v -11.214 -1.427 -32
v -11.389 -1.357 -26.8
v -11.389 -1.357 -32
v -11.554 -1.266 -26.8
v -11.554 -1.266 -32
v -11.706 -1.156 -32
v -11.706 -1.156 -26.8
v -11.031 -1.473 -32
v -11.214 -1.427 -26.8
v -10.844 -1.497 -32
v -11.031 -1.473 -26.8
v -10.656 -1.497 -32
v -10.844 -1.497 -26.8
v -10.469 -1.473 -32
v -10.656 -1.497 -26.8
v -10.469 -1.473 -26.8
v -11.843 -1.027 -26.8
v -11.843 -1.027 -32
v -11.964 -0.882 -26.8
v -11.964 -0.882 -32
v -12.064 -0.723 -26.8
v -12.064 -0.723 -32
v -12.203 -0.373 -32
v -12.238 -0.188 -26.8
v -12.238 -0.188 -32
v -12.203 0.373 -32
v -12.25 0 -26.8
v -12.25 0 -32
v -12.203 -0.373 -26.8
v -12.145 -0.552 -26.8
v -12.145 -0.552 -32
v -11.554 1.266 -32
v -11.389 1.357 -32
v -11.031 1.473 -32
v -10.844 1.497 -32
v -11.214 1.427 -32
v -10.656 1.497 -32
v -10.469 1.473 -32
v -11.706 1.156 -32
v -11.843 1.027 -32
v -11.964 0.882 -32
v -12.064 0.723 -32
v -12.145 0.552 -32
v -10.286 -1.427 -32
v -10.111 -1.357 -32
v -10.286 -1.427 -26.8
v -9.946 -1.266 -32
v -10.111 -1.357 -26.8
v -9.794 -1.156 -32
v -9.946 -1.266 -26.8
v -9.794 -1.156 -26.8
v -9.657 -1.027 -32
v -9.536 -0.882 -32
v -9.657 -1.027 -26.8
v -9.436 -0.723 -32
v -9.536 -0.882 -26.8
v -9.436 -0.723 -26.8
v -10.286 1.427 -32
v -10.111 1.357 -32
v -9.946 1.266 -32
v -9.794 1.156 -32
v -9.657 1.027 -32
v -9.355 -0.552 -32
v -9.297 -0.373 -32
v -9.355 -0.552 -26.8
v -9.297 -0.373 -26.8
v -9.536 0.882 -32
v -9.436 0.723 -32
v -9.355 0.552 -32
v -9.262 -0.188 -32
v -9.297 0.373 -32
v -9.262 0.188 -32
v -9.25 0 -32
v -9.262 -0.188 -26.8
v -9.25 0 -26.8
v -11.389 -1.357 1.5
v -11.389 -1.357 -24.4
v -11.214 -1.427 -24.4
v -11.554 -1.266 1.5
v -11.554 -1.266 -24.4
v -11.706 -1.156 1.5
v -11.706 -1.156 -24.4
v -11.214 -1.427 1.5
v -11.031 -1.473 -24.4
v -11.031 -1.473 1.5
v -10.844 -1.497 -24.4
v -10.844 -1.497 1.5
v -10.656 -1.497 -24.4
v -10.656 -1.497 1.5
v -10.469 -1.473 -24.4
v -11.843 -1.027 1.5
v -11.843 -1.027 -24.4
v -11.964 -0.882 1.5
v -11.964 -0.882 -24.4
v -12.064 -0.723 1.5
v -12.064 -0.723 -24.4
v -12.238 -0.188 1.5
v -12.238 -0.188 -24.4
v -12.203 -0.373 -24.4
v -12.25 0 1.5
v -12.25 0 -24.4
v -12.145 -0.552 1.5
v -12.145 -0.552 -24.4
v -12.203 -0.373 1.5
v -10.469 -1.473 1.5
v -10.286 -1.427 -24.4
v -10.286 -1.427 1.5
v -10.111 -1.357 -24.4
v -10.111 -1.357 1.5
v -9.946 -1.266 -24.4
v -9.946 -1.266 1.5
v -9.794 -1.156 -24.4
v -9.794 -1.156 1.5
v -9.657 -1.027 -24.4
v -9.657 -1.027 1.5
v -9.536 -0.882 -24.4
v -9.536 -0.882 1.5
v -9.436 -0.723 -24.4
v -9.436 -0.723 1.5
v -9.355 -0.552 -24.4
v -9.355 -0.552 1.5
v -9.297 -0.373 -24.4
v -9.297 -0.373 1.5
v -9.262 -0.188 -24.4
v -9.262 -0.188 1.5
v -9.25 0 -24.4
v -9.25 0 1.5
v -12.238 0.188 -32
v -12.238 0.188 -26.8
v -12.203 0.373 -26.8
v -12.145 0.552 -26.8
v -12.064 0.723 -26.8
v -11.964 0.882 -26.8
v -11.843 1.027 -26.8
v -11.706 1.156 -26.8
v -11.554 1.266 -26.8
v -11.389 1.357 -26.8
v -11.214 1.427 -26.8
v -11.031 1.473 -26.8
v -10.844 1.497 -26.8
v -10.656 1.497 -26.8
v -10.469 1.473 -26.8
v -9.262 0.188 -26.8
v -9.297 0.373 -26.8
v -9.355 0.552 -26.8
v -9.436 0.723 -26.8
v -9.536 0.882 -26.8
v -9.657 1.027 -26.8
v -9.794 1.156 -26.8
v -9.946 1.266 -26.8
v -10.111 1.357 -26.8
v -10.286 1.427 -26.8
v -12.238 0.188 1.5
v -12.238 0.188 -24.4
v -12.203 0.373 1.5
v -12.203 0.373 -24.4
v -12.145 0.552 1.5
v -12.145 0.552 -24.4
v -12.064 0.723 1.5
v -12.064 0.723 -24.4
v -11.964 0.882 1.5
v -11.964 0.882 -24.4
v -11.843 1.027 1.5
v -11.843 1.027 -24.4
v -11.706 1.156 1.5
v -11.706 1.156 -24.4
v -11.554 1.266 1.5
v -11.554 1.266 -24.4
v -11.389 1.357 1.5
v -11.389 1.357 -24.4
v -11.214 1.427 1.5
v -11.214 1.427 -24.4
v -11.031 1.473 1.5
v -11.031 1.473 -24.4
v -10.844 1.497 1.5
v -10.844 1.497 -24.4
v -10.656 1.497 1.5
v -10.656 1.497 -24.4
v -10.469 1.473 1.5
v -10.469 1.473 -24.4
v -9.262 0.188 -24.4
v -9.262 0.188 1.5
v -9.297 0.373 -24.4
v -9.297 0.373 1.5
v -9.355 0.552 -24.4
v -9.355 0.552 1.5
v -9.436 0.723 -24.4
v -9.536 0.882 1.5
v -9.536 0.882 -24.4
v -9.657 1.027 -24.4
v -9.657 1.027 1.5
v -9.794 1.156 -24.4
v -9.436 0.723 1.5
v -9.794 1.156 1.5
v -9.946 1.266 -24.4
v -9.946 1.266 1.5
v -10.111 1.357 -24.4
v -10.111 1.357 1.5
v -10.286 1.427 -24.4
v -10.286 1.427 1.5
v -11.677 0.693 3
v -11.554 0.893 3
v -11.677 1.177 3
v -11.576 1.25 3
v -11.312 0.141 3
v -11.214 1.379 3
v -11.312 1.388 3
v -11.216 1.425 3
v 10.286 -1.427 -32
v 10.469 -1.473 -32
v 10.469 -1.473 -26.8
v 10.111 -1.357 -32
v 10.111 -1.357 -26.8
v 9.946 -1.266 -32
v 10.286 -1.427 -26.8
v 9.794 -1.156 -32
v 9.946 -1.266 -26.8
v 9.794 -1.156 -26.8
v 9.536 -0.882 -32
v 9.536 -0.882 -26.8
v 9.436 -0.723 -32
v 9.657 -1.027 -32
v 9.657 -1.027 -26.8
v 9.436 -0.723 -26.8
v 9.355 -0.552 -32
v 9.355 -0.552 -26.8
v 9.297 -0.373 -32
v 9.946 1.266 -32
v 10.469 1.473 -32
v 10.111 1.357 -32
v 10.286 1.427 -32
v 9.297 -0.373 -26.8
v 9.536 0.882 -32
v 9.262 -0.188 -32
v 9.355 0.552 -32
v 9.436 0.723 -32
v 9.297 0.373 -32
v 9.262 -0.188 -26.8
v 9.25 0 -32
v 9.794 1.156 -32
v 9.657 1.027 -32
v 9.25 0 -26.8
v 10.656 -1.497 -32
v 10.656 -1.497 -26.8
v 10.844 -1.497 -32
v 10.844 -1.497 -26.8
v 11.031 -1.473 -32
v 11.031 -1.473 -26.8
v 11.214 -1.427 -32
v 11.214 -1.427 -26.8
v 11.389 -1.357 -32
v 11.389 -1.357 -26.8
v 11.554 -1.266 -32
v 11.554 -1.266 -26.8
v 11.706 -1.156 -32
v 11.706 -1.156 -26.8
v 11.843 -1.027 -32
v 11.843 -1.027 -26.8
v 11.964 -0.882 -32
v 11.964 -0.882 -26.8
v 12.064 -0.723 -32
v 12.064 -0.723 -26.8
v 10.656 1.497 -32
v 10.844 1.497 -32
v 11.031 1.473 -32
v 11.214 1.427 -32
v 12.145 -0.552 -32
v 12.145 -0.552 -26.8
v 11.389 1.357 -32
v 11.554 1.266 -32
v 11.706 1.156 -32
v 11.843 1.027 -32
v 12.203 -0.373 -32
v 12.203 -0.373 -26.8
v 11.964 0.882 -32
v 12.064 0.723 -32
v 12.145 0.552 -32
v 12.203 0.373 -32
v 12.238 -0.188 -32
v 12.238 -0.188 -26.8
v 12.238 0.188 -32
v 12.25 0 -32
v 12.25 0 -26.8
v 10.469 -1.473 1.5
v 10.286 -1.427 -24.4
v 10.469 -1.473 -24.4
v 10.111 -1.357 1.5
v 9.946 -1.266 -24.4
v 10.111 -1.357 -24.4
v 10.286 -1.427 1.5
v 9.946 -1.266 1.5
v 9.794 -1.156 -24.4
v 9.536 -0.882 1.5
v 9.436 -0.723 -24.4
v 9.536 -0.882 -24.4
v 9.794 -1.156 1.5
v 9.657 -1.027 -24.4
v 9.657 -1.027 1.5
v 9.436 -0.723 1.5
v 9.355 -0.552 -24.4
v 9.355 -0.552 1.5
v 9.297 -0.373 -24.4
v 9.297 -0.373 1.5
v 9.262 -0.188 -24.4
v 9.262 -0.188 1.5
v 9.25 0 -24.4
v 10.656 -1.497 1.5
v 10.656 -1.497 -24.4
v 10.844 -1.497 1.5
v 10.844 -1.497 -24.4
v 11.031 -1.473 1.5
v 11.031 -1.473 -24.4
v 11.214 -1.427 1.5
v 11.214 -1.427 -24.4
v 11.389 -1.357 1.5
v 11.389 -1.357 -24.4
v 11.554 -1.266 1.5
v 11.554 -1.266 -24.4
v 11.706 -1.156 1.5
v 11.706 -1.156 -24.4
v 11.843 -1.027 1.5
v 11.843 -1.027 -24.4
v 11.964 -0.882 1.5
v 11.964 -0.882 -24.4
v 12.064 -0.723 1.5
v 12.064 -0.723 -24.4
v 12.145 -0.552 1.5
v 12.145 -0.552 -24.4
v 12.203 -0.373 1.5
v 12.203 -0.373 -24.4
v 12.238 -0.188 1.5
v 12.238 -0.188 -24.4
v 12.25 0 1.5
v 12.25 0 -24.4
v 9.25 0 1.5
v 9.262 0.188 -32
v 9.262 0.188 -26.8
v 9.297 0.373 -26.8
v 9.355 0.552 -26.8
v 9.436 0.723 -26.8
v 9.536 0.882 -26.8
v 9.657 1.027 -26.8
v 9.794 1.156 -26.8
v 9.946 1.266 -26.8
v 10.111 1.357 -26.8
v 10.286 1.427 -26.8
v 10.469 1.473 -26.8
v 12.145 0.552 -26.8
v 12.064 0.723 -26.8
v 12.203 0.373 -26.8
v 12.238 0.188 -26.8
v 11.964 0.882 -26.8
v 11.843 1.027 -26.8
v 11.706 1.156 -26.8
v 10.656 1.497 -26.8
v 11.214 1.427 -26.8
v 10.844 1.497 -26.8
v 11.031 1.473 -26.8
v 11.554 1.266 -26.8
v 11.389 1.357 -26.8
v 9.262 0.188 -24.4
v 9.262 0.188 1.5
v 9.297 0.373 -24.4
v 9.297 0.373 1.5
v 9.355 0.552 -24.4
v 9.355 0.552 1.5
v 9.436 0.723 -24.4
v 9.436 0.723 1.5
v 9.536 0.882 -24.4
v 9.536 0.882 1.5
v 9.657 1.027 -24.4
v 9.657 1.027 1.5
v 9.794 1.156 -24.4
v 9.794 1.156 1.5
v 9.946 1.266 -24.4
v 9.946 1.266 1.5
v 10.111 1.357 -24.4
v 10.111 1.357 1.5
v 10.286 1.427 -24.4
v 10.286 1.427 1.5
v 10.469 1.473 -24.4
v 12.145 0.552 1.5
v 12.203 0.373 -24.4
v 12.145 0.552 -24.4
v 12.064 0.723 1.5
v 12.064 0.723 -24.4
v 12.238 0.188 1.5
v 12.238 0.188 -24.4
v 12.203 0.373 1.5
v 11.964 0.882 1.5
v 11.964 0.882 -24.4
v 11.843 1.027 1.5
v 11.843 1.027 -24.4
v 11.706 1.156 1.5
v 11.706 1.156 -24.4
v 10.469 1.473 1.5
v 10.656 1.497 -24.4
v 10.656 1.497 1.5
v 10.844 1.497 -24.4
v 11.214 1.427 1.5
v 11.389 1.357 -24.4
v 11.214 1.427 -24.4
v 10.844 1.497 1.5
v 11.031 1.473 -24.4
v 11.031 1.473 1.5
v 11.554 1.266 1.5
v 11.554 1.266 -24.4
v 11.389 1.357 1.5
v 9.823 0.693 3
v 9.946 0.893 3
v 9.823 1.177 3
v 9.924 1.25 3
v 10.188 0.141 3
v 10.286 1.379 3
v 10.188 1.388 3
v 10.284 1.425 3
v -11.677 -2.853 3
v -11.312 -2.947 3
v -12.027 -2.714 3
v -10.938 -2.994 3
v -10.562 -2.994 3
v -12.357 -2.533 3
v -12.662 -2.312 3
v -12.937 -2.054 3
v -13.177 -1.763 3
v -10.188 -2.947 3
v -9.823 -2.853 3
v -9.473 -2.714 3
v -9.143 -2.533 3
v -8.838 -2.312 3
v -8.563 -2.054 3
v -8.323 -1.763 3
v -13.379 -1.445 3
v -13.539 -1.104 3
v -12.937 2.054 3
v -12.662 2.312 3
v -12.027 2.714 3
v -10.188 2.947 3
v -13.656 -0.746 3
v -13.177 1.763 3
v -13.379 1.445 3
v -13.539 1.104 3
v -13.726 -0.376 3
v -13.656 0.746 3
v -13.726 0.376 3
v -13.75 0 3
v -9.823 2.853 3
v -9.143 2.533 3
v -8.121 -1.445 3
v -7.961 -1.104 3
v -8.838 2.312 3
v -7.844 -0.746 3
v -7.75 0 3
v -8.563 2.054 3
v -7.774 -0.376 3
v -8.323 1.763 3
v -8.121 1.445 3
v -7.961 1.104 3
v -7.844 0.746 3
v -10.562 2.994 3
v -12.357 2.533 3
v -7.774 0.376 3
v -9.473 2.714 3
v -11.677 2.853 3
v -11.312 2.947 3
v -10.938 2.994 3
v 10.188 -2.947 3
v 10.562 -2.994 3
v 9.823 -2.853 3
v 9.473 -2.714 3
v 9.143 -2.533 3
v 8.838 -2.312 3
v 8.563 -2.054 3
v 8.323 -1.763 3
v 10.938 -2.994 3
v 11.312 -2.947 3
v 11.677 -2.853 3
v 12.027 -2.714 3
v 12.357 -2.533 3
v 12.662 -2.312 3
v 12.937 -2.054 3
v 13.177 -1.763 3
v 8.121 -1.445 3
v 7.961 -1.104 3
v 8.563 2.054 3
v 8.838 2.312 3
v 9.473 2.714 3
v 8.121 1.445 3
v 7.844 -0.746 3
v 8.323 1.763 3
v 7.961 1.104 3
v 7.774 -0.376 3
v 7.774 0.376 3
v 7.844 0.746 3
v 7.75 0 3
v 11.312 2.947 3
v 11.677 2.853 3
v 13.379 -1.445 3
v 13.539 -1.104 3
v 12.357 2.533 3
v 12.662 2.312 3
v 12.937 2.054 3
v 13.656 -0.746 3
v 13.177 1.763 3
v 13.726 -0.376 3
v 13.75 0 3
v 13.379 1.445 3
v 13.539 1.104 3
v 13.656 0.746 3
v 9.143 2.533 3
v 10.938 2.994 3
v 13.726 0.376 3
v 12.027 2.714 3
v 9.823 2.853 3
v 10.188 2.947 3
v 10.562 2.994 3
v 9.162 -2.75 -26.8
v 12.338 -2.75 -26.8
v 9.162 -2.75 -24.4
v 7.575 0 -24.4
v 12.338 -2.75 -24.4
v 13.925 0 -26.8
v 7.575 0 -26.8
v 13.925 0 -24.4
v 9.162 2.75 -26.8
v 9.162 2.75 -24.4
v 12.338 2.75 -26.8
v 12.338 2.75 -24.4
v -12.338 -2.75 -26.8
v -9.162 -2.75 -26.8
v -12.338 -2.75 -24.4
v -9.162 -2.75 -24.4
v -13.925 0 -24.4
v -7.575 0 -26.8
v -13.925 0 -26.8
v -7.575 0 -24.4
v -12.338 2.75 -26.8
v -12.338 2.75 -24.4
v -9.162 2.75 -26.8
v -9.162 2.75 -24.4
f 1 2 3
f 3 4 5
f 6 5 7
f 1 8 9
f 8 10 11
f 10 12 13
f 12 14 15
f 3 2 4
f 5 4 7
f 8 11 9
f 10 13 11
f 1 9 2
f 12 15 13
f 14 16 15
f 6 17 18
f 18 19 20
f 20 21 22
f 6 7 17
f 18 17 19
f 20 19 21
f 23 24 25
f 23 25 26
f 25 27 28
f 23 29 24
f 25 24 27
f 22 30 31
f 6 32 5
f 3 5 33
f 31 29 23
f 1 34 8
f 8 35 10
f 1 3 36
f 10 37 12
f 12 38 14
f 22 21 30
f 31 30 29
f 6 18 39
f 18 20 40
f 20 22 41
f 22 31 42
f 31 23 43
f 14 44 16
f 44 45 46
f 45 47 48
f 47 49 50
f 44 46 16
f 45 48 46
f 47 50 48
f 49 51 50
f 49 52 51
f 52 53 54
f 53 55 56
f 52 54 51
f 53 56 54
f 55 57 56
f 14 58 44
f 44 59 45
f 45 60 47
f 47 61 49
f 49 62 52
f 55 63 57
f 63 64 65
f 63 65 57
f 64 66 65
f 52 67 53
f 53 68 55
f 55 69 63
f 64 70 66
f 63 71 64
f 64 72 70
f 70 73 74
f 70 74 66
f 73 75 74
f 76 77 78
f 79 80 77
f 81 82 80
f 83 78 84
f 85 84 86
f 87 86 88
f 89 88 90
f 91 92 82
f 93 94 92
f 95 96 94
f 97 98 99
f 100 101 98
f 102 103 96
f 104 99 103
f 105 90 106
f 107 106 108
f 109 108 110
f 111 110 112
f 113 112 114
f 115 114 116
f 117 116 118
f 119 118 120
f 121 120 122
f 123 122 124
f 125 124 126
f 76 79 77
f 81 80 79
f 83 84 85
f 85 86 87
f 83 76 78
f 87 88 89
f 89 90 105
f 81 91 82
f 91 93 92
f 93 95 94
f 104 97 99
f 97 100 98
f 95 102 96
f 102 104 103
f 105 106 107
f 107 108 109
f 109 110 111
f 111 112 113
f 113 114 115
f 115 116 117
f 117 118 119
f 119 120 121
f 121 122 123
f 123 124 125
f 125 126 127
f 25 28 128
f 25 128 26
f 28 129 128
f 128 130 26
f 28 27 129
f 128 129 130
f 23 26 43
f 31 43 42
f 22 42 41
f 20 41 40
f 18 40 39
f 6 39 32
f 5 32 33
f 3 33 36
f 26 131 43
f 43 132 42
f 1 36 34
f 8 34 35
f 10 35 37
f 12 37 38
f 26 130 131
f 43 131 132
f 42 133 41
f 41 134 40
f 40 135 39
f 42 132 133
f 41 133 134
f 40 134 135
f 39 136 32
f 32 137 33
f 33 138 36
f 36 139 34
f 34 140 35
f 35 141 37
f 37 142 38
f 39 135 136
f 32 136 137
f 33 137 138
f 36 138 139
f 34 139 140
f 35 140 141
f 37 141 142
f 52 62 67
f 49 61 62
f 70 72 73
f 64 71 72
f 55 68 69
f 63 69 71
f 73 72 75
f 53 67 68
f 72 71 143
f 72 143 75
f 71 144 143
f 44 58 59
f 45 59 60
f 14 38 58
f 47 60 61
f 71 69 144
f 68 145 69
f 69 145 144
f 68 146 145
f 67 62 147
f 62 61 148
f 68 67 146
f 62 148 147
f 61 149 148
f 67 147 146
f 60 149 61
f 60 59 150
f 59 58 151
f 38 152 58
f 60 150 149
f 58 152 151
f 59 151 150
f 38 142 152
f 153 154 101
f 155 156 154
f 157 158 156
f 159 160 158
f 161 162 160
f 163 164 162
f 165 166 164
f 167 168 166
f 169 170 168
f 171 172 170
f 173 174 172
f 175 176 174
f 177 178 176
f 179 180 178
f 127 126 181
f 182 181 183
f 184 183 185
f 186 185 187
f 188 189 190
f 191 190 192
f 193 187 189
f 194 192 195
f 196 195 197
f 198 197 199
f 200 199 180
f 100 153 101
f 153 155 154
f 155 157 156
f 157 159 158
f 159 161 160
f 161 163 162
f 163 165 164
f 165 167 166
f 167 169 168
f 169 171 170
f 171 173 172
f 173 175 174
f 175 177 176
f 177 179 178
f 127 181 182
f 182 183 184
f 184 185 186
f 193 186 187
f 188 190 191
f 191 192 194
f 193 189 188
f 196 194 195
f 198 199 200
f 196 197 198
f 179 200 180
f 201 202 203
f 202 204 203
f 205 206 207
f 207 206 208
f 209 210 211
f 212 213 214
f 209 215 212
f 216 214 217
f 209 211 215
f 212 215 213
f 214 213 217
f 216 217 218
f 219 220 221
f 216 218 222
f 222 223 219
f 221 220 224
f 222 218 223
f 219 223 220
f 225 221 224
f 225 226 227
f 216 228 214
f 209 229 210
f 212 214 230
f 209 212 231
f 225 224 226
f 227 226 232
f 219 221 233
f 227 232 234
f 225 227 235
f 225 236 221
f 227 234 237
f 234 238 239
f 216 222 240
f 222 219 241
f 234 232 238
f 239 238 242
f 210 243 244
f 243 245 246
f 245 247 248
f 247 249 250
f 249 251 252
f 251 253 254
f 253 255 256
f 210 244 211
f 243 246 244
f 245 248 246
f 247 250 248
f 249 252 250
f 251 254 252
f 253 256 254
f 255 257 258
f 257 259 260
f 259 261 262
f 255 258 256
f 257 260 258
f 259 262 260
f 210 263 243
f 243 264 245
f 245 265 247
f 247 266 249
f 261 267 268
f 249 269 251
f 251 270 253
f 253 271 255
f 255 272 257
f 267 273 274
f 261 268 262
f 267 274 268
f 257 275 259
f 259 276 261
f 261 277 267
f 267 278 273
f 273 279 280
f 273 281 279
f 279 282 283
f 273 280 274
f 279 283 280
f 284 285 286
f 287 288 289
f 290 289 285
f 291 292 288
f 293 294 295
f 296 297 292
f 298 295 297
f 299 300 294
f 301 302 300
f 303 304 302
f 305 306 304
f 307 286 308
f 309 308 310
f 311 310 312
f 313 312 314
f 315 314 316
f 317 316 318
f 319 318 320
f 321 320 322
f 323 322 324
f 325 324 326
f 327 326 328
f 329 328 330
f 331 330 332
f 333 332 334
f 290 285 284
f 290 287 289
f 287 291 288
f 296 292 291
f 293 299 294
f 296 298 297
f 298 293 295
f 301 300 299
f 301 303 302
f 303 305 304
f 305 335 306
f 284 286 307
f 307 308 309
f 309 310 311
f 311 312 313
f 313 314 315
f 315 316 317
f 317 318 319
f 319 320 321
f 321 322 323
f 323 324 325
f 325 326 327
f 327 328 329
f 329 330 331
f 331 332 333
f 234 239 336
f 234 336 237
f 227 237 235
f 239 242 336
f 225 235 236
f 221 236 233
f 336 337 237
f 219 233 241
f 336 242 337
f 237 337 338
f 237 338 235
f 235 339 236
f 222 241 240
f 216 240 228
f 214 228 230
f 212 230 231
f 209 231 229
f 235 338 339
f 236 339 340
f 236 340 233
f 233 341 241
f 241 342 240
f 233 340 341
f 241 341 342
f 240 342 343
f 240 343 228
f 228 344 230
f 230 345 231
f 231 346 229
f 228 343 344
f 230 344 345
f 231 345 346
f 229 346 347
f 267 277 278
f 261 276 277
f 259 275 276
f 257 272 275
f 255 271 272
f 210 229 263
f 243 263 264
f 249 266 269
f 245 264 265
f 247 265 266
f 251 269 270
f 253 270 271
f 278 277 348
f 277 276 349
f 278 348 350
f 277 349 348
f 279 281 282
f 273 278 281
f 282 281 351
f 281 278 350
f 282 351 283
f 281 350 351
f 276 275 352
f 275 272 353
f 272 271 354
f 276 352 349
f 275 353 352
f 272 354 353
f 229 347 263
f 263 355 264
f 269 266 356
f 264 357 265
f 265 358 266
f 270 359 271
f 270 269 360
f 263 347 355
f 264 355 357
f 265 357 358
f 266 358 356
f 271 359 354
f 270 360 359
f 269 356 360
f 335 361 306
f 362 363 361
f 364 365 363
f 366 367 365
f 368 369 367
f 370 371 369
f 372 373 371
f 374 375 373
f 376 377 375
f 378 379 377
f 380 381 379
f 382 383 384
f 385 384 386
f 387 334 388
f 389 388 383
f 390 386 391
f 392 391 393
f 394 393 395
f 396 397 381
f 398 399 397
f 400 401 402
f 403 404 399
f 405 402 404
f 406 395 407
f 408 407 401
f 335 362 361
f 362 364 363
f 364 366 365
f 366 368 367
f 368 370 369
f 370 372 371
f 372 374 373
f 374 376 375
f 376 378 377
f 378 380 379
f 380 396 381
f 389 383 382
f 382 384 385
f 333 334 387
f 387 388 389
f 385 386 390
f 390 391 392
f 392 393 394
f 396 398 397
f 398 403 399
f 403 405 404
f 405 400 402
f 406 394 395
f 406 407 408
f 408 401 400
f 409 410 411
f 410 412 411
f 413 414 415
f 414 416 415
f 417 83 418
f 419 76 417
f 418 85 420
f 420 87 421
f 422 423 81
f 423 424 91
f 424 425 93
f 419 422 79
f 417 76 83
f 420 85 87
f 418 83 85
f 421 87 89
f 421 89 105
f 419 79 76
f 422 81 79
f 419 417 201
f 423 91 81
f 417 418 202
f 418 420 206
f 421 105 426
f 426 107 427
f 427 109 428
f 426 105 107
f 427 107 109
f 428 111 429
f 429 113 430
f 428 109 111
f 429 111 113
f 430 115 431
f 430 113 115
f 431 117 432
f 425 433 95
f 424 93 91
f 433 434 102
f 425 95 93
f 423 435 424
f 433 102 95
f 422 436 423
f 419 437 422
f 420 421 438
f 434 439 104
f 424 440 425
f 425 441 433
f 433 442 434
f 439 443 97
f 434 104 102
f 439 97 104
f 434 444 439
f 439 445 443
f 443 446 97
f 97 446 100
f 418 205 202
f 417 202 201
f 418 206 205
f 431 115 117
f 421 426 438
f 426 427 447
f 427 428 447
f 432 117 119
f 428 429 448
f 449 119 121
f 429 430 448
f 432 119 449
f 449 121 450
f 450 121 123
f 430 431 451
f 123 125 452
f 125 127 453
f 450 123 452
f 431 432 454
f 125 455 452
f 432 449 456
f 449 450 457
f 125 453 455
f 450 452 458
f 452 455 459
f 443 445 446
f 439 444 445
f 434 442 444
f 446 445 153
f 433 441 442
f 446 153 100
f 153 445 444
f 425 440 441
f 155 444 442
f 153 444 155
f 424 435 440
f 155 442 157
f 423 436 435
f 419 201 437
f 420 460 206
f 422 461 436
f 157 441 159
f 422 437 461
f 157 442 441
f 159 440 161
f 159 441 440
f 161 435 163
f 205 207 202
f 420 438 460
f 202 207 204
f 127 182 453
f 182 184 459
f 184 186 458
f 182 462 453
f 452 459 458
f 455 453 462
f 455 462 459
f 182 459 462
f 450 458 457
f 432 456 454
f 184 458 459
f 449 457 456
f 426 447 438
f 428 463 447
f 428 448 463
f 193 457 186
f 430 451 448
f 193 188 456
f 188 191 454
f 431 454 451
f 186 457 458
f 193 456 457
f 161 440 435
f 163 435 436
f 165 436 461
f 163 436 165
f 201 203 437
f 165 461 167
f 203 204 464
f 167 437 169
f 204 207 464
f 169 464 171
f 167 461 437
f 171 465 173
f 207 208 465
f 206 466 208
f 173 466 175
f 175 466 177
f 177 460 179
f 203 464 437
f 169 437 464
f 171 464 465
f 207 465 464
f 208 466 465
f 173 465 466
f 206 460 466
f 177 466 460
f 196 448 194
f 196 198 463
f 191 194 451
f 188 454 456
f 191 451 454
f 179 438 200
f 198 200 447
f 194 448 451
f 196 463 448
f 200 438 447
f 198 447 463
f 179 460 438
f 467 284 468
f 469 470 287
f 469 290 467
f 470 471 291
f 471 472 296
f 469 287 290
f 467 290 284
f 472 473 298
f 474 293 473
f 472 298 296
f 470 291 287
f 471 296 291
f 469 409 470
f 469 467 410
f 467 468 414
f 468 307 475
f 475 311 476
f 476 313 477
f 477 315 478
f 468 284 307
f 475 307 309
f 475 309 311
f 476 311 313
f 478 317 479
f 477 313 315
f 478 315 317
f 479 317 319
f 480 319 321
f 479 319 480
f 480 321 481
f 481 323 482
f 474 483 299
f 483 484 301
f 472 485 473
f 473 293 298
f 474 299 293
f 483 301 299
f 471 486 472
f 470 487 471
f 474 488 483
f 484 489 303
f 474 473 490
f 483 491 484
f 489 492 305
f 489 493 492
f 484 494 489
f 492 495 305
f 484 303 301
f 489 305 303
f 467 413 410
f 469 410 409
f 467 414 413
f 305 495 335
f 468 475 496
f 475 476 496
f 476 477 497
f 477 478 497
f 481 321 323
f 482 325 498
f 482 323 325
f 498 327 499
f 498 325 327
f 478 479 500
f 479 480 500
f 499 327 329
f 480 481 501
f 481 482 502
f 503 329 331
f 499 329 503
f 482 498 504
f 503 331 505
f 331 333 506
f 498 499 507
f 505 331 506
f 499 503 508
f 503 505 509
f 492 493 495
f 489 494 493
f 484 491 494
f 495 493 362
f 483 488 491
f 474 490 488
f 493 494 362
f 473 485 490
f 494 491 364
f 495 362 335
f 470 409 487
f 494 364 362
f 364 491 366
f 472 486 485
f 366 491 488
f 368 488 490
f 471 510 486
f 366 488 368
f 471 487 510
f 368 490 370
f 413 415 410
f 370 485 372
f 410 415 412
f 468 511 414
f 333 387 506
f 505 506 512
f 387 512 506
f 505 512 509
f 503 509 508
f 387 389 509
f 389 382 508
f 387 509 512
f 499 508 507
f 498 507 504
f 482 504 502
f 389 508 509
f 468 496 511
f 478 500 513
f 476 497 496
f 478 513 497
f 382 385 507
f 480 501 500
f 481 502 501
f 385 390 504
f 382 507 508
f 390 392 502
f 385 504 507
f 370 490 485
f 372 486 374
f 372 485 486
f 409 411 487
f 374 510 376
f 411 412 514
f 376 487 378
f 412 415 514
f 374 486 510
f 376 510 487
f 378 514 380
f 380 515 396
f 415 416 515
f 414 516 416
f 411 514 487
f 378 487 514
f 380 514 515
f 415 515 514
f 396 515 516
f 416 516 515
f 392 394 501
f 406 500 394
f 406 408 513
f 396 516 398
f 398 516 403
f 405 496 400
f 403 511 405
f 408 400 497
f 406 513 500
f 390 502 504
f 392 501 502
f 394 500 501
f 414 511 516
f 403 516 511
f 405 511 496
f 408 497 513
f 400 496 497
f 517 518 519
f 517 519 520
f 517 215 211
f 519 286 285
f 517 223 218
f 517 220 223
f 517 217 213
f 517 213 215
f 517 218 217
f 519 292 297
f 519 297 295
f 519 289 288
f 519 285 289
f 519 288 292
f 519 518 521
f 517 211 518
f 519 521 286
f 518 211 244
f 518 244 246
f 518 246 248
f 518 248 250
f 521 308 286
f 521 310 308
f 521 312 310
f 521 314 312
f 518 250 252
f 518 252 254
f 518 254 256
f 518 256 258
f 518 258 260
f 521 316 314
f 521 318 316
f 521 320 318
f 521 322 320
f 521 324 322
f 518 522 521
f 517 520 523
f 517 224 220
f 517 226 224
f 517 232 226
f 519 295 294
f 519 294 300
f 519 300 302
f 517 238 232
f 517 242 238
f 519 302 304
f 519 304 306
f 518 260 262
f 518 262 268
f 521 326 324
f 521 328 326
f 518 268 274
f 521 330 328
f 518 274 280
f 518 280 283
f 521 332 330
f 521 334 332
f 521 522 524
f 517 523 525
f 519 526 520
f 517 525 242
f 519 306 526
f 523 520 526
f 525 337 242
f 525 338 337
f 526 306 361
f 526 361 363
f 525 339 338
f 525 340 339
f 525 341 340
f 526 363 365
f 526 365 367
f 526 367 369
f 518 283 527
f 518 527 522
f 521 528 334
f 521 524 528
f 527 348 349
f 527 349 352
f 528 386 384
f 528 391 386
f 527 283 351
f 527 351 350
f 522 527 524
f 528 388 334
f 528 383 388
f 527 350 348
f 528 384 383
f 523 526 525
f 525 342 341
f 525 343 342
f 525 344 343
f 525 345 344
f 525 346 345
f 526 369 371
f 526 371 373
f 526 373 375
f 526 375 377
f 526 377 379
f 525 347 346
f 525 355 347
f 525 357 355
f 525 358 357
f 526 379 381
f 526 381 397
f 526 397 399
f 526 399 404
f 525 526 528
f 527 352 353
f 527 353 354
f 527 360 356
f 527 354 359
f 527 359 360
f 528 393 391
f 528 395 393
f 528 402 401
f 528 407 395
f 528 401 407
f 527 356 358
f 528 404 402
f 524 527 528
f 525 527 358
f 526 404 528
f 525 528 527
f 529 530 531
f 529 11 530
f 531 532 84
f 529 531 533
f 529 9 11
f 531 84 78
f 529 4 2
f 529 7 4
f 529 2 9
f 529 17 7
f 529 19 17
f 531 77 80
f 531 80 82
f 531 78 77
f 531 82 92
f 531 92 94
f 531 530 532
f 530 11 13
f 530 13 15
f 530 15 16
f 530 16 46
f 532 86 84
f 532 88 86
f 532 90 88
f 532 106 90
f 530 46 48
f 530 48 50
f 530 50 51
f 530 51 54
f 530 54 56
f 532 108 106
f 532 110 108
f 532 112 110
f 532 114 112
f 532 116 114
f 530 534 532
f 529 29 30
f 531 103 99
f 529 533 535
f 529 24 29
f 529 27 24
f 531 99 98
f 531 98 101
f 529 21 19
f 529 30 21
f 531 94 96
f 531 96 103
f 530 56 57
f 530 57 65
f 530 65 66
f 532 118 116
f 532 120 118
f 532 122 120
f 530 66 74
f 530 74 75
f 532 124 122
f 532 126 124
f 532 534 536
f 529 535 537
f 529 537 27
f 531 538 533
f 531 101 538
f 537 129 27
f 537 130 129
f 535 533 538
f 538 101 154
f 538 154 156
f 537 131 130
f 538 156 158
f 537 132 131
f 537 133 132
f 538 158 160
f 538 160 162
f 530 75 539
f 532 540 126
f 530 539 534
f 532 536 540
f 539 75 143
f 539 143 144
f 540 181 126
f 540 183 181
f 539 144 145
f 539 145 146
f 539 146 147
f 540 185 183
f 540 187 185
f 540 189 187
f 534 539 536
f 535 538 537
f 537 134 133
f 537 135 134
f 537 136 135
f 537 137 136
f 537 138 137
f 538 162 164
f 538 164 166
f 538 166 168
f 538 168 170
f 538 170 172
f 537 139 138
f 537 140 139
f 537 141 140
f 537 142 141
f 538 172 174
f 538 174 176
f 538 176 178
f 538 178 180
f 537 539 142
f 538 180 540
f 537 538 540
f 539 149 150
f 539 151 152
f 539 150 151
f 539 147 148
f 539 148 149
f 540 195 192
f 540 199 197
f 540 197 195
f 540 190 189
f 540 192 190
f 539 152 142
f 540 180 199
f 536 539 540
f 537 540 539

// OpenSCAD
$fn = 50;

difference() {
	union() {
		translate(v = [-10.75, 0, 3]) {
			rotate(a = [0, 0, 0]) {
				difference() {
					union() {
						translate(v = [0, 0, -35.0]) {
							cylinder(h = 35, r = 1.5);
						}
						translate(v = [0, 0, -1.5]) {
							cylinder(h = 1.5, r1 = 1.5, r2 = 3);
						}
					}
					union();
				}
			}
		}
		translate(v = [-10.75, 0, -26.8]) {
			rotate(a = [0, 0, 0]) {
				difference() {
					union() {
						linear_extrude(height = 2.4) {
							polygon(points = [[3.1754264805429417, 0.0], [1.5877132402714713, 2.75], [-1.5877132402714702, 2.7500000000000004], [-3.1754264805429417, 3.888775875324659e-16], [-1.5877132402714722, -2.7499999999999996], [1.5877132402714687, -2.7500000000000013]]);
						}
					}
					union();
				}
			}
		}
		translate(v = [10.75, 0, 3]) {
			rotate(a = [0, 0, 0]) {
				difference() {
					union() {
						translate(v = [0, 0, -35.0]) {
							cylinder(h = 35, r = 1.5);
						}
						translate(v = [0, 0, -1.5]) {
							cylinder(h = 1.5, r1 = 1.5, r2 = 3);
						}
					}
					union();
				}
			}
		}
		translate(v = [10.75, 0, -26.8]) {
			rotate(a = [0, 0, 0]) {
				difference() {
					union() {
						linear_extrude(height = 2.4) {
							polygon(points = [[3.1754264805429417, 0.0], [1.5877132402714713, 2.75], [-1.5877132402714702, 2.7500000000000004], [-3.1754264805429417, 3.888775875324659e-16], [-1.5877132402714722, -2.7499999999999996], [1.5877132402714687, -2.7500000000000013]]);
						}
					}
					union();
				}
			}
		}
	}
	union();
}
